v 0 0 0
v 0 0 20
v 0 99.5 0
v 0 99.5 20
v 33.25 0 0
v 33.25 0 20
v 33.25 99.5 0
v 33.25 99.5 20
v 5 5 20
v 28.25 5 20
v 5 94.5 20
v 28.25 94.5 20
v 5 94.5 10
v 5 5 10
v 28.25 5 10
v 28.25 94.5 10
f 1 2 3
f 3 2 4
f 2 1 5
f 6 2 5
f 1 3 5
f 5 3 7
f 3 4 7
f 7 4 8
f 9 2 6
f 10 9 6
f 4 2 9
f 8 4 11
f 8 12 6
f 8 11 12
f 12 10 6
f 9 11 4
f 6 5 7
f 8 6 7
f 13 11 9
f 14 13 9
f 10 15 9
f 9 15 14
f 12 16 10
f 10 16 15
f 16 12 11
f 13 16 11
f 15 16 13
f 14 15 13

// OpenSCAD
// Feet to raise my futon up a few millimeters (so the roomba can go underneath).

leg_width = 22.25;
leg_depth = 88.5;
clearance = 1;
wall_height = 10;
wall_thickness = 5;
floor_thickness = 10;

overcut = 1;

difference() {
    cube([2*wall_thickness + clearance + leg_width,
        2*wall_thickness + clearance + leg_depth,
        floor_thickness + wall_height]);
    translate([wall_thickness, wall_thickness, floor_thickness])
    cube([clearance + leg_width,
        clearance + leg_depth,
        wall_height + overcut]);
}
